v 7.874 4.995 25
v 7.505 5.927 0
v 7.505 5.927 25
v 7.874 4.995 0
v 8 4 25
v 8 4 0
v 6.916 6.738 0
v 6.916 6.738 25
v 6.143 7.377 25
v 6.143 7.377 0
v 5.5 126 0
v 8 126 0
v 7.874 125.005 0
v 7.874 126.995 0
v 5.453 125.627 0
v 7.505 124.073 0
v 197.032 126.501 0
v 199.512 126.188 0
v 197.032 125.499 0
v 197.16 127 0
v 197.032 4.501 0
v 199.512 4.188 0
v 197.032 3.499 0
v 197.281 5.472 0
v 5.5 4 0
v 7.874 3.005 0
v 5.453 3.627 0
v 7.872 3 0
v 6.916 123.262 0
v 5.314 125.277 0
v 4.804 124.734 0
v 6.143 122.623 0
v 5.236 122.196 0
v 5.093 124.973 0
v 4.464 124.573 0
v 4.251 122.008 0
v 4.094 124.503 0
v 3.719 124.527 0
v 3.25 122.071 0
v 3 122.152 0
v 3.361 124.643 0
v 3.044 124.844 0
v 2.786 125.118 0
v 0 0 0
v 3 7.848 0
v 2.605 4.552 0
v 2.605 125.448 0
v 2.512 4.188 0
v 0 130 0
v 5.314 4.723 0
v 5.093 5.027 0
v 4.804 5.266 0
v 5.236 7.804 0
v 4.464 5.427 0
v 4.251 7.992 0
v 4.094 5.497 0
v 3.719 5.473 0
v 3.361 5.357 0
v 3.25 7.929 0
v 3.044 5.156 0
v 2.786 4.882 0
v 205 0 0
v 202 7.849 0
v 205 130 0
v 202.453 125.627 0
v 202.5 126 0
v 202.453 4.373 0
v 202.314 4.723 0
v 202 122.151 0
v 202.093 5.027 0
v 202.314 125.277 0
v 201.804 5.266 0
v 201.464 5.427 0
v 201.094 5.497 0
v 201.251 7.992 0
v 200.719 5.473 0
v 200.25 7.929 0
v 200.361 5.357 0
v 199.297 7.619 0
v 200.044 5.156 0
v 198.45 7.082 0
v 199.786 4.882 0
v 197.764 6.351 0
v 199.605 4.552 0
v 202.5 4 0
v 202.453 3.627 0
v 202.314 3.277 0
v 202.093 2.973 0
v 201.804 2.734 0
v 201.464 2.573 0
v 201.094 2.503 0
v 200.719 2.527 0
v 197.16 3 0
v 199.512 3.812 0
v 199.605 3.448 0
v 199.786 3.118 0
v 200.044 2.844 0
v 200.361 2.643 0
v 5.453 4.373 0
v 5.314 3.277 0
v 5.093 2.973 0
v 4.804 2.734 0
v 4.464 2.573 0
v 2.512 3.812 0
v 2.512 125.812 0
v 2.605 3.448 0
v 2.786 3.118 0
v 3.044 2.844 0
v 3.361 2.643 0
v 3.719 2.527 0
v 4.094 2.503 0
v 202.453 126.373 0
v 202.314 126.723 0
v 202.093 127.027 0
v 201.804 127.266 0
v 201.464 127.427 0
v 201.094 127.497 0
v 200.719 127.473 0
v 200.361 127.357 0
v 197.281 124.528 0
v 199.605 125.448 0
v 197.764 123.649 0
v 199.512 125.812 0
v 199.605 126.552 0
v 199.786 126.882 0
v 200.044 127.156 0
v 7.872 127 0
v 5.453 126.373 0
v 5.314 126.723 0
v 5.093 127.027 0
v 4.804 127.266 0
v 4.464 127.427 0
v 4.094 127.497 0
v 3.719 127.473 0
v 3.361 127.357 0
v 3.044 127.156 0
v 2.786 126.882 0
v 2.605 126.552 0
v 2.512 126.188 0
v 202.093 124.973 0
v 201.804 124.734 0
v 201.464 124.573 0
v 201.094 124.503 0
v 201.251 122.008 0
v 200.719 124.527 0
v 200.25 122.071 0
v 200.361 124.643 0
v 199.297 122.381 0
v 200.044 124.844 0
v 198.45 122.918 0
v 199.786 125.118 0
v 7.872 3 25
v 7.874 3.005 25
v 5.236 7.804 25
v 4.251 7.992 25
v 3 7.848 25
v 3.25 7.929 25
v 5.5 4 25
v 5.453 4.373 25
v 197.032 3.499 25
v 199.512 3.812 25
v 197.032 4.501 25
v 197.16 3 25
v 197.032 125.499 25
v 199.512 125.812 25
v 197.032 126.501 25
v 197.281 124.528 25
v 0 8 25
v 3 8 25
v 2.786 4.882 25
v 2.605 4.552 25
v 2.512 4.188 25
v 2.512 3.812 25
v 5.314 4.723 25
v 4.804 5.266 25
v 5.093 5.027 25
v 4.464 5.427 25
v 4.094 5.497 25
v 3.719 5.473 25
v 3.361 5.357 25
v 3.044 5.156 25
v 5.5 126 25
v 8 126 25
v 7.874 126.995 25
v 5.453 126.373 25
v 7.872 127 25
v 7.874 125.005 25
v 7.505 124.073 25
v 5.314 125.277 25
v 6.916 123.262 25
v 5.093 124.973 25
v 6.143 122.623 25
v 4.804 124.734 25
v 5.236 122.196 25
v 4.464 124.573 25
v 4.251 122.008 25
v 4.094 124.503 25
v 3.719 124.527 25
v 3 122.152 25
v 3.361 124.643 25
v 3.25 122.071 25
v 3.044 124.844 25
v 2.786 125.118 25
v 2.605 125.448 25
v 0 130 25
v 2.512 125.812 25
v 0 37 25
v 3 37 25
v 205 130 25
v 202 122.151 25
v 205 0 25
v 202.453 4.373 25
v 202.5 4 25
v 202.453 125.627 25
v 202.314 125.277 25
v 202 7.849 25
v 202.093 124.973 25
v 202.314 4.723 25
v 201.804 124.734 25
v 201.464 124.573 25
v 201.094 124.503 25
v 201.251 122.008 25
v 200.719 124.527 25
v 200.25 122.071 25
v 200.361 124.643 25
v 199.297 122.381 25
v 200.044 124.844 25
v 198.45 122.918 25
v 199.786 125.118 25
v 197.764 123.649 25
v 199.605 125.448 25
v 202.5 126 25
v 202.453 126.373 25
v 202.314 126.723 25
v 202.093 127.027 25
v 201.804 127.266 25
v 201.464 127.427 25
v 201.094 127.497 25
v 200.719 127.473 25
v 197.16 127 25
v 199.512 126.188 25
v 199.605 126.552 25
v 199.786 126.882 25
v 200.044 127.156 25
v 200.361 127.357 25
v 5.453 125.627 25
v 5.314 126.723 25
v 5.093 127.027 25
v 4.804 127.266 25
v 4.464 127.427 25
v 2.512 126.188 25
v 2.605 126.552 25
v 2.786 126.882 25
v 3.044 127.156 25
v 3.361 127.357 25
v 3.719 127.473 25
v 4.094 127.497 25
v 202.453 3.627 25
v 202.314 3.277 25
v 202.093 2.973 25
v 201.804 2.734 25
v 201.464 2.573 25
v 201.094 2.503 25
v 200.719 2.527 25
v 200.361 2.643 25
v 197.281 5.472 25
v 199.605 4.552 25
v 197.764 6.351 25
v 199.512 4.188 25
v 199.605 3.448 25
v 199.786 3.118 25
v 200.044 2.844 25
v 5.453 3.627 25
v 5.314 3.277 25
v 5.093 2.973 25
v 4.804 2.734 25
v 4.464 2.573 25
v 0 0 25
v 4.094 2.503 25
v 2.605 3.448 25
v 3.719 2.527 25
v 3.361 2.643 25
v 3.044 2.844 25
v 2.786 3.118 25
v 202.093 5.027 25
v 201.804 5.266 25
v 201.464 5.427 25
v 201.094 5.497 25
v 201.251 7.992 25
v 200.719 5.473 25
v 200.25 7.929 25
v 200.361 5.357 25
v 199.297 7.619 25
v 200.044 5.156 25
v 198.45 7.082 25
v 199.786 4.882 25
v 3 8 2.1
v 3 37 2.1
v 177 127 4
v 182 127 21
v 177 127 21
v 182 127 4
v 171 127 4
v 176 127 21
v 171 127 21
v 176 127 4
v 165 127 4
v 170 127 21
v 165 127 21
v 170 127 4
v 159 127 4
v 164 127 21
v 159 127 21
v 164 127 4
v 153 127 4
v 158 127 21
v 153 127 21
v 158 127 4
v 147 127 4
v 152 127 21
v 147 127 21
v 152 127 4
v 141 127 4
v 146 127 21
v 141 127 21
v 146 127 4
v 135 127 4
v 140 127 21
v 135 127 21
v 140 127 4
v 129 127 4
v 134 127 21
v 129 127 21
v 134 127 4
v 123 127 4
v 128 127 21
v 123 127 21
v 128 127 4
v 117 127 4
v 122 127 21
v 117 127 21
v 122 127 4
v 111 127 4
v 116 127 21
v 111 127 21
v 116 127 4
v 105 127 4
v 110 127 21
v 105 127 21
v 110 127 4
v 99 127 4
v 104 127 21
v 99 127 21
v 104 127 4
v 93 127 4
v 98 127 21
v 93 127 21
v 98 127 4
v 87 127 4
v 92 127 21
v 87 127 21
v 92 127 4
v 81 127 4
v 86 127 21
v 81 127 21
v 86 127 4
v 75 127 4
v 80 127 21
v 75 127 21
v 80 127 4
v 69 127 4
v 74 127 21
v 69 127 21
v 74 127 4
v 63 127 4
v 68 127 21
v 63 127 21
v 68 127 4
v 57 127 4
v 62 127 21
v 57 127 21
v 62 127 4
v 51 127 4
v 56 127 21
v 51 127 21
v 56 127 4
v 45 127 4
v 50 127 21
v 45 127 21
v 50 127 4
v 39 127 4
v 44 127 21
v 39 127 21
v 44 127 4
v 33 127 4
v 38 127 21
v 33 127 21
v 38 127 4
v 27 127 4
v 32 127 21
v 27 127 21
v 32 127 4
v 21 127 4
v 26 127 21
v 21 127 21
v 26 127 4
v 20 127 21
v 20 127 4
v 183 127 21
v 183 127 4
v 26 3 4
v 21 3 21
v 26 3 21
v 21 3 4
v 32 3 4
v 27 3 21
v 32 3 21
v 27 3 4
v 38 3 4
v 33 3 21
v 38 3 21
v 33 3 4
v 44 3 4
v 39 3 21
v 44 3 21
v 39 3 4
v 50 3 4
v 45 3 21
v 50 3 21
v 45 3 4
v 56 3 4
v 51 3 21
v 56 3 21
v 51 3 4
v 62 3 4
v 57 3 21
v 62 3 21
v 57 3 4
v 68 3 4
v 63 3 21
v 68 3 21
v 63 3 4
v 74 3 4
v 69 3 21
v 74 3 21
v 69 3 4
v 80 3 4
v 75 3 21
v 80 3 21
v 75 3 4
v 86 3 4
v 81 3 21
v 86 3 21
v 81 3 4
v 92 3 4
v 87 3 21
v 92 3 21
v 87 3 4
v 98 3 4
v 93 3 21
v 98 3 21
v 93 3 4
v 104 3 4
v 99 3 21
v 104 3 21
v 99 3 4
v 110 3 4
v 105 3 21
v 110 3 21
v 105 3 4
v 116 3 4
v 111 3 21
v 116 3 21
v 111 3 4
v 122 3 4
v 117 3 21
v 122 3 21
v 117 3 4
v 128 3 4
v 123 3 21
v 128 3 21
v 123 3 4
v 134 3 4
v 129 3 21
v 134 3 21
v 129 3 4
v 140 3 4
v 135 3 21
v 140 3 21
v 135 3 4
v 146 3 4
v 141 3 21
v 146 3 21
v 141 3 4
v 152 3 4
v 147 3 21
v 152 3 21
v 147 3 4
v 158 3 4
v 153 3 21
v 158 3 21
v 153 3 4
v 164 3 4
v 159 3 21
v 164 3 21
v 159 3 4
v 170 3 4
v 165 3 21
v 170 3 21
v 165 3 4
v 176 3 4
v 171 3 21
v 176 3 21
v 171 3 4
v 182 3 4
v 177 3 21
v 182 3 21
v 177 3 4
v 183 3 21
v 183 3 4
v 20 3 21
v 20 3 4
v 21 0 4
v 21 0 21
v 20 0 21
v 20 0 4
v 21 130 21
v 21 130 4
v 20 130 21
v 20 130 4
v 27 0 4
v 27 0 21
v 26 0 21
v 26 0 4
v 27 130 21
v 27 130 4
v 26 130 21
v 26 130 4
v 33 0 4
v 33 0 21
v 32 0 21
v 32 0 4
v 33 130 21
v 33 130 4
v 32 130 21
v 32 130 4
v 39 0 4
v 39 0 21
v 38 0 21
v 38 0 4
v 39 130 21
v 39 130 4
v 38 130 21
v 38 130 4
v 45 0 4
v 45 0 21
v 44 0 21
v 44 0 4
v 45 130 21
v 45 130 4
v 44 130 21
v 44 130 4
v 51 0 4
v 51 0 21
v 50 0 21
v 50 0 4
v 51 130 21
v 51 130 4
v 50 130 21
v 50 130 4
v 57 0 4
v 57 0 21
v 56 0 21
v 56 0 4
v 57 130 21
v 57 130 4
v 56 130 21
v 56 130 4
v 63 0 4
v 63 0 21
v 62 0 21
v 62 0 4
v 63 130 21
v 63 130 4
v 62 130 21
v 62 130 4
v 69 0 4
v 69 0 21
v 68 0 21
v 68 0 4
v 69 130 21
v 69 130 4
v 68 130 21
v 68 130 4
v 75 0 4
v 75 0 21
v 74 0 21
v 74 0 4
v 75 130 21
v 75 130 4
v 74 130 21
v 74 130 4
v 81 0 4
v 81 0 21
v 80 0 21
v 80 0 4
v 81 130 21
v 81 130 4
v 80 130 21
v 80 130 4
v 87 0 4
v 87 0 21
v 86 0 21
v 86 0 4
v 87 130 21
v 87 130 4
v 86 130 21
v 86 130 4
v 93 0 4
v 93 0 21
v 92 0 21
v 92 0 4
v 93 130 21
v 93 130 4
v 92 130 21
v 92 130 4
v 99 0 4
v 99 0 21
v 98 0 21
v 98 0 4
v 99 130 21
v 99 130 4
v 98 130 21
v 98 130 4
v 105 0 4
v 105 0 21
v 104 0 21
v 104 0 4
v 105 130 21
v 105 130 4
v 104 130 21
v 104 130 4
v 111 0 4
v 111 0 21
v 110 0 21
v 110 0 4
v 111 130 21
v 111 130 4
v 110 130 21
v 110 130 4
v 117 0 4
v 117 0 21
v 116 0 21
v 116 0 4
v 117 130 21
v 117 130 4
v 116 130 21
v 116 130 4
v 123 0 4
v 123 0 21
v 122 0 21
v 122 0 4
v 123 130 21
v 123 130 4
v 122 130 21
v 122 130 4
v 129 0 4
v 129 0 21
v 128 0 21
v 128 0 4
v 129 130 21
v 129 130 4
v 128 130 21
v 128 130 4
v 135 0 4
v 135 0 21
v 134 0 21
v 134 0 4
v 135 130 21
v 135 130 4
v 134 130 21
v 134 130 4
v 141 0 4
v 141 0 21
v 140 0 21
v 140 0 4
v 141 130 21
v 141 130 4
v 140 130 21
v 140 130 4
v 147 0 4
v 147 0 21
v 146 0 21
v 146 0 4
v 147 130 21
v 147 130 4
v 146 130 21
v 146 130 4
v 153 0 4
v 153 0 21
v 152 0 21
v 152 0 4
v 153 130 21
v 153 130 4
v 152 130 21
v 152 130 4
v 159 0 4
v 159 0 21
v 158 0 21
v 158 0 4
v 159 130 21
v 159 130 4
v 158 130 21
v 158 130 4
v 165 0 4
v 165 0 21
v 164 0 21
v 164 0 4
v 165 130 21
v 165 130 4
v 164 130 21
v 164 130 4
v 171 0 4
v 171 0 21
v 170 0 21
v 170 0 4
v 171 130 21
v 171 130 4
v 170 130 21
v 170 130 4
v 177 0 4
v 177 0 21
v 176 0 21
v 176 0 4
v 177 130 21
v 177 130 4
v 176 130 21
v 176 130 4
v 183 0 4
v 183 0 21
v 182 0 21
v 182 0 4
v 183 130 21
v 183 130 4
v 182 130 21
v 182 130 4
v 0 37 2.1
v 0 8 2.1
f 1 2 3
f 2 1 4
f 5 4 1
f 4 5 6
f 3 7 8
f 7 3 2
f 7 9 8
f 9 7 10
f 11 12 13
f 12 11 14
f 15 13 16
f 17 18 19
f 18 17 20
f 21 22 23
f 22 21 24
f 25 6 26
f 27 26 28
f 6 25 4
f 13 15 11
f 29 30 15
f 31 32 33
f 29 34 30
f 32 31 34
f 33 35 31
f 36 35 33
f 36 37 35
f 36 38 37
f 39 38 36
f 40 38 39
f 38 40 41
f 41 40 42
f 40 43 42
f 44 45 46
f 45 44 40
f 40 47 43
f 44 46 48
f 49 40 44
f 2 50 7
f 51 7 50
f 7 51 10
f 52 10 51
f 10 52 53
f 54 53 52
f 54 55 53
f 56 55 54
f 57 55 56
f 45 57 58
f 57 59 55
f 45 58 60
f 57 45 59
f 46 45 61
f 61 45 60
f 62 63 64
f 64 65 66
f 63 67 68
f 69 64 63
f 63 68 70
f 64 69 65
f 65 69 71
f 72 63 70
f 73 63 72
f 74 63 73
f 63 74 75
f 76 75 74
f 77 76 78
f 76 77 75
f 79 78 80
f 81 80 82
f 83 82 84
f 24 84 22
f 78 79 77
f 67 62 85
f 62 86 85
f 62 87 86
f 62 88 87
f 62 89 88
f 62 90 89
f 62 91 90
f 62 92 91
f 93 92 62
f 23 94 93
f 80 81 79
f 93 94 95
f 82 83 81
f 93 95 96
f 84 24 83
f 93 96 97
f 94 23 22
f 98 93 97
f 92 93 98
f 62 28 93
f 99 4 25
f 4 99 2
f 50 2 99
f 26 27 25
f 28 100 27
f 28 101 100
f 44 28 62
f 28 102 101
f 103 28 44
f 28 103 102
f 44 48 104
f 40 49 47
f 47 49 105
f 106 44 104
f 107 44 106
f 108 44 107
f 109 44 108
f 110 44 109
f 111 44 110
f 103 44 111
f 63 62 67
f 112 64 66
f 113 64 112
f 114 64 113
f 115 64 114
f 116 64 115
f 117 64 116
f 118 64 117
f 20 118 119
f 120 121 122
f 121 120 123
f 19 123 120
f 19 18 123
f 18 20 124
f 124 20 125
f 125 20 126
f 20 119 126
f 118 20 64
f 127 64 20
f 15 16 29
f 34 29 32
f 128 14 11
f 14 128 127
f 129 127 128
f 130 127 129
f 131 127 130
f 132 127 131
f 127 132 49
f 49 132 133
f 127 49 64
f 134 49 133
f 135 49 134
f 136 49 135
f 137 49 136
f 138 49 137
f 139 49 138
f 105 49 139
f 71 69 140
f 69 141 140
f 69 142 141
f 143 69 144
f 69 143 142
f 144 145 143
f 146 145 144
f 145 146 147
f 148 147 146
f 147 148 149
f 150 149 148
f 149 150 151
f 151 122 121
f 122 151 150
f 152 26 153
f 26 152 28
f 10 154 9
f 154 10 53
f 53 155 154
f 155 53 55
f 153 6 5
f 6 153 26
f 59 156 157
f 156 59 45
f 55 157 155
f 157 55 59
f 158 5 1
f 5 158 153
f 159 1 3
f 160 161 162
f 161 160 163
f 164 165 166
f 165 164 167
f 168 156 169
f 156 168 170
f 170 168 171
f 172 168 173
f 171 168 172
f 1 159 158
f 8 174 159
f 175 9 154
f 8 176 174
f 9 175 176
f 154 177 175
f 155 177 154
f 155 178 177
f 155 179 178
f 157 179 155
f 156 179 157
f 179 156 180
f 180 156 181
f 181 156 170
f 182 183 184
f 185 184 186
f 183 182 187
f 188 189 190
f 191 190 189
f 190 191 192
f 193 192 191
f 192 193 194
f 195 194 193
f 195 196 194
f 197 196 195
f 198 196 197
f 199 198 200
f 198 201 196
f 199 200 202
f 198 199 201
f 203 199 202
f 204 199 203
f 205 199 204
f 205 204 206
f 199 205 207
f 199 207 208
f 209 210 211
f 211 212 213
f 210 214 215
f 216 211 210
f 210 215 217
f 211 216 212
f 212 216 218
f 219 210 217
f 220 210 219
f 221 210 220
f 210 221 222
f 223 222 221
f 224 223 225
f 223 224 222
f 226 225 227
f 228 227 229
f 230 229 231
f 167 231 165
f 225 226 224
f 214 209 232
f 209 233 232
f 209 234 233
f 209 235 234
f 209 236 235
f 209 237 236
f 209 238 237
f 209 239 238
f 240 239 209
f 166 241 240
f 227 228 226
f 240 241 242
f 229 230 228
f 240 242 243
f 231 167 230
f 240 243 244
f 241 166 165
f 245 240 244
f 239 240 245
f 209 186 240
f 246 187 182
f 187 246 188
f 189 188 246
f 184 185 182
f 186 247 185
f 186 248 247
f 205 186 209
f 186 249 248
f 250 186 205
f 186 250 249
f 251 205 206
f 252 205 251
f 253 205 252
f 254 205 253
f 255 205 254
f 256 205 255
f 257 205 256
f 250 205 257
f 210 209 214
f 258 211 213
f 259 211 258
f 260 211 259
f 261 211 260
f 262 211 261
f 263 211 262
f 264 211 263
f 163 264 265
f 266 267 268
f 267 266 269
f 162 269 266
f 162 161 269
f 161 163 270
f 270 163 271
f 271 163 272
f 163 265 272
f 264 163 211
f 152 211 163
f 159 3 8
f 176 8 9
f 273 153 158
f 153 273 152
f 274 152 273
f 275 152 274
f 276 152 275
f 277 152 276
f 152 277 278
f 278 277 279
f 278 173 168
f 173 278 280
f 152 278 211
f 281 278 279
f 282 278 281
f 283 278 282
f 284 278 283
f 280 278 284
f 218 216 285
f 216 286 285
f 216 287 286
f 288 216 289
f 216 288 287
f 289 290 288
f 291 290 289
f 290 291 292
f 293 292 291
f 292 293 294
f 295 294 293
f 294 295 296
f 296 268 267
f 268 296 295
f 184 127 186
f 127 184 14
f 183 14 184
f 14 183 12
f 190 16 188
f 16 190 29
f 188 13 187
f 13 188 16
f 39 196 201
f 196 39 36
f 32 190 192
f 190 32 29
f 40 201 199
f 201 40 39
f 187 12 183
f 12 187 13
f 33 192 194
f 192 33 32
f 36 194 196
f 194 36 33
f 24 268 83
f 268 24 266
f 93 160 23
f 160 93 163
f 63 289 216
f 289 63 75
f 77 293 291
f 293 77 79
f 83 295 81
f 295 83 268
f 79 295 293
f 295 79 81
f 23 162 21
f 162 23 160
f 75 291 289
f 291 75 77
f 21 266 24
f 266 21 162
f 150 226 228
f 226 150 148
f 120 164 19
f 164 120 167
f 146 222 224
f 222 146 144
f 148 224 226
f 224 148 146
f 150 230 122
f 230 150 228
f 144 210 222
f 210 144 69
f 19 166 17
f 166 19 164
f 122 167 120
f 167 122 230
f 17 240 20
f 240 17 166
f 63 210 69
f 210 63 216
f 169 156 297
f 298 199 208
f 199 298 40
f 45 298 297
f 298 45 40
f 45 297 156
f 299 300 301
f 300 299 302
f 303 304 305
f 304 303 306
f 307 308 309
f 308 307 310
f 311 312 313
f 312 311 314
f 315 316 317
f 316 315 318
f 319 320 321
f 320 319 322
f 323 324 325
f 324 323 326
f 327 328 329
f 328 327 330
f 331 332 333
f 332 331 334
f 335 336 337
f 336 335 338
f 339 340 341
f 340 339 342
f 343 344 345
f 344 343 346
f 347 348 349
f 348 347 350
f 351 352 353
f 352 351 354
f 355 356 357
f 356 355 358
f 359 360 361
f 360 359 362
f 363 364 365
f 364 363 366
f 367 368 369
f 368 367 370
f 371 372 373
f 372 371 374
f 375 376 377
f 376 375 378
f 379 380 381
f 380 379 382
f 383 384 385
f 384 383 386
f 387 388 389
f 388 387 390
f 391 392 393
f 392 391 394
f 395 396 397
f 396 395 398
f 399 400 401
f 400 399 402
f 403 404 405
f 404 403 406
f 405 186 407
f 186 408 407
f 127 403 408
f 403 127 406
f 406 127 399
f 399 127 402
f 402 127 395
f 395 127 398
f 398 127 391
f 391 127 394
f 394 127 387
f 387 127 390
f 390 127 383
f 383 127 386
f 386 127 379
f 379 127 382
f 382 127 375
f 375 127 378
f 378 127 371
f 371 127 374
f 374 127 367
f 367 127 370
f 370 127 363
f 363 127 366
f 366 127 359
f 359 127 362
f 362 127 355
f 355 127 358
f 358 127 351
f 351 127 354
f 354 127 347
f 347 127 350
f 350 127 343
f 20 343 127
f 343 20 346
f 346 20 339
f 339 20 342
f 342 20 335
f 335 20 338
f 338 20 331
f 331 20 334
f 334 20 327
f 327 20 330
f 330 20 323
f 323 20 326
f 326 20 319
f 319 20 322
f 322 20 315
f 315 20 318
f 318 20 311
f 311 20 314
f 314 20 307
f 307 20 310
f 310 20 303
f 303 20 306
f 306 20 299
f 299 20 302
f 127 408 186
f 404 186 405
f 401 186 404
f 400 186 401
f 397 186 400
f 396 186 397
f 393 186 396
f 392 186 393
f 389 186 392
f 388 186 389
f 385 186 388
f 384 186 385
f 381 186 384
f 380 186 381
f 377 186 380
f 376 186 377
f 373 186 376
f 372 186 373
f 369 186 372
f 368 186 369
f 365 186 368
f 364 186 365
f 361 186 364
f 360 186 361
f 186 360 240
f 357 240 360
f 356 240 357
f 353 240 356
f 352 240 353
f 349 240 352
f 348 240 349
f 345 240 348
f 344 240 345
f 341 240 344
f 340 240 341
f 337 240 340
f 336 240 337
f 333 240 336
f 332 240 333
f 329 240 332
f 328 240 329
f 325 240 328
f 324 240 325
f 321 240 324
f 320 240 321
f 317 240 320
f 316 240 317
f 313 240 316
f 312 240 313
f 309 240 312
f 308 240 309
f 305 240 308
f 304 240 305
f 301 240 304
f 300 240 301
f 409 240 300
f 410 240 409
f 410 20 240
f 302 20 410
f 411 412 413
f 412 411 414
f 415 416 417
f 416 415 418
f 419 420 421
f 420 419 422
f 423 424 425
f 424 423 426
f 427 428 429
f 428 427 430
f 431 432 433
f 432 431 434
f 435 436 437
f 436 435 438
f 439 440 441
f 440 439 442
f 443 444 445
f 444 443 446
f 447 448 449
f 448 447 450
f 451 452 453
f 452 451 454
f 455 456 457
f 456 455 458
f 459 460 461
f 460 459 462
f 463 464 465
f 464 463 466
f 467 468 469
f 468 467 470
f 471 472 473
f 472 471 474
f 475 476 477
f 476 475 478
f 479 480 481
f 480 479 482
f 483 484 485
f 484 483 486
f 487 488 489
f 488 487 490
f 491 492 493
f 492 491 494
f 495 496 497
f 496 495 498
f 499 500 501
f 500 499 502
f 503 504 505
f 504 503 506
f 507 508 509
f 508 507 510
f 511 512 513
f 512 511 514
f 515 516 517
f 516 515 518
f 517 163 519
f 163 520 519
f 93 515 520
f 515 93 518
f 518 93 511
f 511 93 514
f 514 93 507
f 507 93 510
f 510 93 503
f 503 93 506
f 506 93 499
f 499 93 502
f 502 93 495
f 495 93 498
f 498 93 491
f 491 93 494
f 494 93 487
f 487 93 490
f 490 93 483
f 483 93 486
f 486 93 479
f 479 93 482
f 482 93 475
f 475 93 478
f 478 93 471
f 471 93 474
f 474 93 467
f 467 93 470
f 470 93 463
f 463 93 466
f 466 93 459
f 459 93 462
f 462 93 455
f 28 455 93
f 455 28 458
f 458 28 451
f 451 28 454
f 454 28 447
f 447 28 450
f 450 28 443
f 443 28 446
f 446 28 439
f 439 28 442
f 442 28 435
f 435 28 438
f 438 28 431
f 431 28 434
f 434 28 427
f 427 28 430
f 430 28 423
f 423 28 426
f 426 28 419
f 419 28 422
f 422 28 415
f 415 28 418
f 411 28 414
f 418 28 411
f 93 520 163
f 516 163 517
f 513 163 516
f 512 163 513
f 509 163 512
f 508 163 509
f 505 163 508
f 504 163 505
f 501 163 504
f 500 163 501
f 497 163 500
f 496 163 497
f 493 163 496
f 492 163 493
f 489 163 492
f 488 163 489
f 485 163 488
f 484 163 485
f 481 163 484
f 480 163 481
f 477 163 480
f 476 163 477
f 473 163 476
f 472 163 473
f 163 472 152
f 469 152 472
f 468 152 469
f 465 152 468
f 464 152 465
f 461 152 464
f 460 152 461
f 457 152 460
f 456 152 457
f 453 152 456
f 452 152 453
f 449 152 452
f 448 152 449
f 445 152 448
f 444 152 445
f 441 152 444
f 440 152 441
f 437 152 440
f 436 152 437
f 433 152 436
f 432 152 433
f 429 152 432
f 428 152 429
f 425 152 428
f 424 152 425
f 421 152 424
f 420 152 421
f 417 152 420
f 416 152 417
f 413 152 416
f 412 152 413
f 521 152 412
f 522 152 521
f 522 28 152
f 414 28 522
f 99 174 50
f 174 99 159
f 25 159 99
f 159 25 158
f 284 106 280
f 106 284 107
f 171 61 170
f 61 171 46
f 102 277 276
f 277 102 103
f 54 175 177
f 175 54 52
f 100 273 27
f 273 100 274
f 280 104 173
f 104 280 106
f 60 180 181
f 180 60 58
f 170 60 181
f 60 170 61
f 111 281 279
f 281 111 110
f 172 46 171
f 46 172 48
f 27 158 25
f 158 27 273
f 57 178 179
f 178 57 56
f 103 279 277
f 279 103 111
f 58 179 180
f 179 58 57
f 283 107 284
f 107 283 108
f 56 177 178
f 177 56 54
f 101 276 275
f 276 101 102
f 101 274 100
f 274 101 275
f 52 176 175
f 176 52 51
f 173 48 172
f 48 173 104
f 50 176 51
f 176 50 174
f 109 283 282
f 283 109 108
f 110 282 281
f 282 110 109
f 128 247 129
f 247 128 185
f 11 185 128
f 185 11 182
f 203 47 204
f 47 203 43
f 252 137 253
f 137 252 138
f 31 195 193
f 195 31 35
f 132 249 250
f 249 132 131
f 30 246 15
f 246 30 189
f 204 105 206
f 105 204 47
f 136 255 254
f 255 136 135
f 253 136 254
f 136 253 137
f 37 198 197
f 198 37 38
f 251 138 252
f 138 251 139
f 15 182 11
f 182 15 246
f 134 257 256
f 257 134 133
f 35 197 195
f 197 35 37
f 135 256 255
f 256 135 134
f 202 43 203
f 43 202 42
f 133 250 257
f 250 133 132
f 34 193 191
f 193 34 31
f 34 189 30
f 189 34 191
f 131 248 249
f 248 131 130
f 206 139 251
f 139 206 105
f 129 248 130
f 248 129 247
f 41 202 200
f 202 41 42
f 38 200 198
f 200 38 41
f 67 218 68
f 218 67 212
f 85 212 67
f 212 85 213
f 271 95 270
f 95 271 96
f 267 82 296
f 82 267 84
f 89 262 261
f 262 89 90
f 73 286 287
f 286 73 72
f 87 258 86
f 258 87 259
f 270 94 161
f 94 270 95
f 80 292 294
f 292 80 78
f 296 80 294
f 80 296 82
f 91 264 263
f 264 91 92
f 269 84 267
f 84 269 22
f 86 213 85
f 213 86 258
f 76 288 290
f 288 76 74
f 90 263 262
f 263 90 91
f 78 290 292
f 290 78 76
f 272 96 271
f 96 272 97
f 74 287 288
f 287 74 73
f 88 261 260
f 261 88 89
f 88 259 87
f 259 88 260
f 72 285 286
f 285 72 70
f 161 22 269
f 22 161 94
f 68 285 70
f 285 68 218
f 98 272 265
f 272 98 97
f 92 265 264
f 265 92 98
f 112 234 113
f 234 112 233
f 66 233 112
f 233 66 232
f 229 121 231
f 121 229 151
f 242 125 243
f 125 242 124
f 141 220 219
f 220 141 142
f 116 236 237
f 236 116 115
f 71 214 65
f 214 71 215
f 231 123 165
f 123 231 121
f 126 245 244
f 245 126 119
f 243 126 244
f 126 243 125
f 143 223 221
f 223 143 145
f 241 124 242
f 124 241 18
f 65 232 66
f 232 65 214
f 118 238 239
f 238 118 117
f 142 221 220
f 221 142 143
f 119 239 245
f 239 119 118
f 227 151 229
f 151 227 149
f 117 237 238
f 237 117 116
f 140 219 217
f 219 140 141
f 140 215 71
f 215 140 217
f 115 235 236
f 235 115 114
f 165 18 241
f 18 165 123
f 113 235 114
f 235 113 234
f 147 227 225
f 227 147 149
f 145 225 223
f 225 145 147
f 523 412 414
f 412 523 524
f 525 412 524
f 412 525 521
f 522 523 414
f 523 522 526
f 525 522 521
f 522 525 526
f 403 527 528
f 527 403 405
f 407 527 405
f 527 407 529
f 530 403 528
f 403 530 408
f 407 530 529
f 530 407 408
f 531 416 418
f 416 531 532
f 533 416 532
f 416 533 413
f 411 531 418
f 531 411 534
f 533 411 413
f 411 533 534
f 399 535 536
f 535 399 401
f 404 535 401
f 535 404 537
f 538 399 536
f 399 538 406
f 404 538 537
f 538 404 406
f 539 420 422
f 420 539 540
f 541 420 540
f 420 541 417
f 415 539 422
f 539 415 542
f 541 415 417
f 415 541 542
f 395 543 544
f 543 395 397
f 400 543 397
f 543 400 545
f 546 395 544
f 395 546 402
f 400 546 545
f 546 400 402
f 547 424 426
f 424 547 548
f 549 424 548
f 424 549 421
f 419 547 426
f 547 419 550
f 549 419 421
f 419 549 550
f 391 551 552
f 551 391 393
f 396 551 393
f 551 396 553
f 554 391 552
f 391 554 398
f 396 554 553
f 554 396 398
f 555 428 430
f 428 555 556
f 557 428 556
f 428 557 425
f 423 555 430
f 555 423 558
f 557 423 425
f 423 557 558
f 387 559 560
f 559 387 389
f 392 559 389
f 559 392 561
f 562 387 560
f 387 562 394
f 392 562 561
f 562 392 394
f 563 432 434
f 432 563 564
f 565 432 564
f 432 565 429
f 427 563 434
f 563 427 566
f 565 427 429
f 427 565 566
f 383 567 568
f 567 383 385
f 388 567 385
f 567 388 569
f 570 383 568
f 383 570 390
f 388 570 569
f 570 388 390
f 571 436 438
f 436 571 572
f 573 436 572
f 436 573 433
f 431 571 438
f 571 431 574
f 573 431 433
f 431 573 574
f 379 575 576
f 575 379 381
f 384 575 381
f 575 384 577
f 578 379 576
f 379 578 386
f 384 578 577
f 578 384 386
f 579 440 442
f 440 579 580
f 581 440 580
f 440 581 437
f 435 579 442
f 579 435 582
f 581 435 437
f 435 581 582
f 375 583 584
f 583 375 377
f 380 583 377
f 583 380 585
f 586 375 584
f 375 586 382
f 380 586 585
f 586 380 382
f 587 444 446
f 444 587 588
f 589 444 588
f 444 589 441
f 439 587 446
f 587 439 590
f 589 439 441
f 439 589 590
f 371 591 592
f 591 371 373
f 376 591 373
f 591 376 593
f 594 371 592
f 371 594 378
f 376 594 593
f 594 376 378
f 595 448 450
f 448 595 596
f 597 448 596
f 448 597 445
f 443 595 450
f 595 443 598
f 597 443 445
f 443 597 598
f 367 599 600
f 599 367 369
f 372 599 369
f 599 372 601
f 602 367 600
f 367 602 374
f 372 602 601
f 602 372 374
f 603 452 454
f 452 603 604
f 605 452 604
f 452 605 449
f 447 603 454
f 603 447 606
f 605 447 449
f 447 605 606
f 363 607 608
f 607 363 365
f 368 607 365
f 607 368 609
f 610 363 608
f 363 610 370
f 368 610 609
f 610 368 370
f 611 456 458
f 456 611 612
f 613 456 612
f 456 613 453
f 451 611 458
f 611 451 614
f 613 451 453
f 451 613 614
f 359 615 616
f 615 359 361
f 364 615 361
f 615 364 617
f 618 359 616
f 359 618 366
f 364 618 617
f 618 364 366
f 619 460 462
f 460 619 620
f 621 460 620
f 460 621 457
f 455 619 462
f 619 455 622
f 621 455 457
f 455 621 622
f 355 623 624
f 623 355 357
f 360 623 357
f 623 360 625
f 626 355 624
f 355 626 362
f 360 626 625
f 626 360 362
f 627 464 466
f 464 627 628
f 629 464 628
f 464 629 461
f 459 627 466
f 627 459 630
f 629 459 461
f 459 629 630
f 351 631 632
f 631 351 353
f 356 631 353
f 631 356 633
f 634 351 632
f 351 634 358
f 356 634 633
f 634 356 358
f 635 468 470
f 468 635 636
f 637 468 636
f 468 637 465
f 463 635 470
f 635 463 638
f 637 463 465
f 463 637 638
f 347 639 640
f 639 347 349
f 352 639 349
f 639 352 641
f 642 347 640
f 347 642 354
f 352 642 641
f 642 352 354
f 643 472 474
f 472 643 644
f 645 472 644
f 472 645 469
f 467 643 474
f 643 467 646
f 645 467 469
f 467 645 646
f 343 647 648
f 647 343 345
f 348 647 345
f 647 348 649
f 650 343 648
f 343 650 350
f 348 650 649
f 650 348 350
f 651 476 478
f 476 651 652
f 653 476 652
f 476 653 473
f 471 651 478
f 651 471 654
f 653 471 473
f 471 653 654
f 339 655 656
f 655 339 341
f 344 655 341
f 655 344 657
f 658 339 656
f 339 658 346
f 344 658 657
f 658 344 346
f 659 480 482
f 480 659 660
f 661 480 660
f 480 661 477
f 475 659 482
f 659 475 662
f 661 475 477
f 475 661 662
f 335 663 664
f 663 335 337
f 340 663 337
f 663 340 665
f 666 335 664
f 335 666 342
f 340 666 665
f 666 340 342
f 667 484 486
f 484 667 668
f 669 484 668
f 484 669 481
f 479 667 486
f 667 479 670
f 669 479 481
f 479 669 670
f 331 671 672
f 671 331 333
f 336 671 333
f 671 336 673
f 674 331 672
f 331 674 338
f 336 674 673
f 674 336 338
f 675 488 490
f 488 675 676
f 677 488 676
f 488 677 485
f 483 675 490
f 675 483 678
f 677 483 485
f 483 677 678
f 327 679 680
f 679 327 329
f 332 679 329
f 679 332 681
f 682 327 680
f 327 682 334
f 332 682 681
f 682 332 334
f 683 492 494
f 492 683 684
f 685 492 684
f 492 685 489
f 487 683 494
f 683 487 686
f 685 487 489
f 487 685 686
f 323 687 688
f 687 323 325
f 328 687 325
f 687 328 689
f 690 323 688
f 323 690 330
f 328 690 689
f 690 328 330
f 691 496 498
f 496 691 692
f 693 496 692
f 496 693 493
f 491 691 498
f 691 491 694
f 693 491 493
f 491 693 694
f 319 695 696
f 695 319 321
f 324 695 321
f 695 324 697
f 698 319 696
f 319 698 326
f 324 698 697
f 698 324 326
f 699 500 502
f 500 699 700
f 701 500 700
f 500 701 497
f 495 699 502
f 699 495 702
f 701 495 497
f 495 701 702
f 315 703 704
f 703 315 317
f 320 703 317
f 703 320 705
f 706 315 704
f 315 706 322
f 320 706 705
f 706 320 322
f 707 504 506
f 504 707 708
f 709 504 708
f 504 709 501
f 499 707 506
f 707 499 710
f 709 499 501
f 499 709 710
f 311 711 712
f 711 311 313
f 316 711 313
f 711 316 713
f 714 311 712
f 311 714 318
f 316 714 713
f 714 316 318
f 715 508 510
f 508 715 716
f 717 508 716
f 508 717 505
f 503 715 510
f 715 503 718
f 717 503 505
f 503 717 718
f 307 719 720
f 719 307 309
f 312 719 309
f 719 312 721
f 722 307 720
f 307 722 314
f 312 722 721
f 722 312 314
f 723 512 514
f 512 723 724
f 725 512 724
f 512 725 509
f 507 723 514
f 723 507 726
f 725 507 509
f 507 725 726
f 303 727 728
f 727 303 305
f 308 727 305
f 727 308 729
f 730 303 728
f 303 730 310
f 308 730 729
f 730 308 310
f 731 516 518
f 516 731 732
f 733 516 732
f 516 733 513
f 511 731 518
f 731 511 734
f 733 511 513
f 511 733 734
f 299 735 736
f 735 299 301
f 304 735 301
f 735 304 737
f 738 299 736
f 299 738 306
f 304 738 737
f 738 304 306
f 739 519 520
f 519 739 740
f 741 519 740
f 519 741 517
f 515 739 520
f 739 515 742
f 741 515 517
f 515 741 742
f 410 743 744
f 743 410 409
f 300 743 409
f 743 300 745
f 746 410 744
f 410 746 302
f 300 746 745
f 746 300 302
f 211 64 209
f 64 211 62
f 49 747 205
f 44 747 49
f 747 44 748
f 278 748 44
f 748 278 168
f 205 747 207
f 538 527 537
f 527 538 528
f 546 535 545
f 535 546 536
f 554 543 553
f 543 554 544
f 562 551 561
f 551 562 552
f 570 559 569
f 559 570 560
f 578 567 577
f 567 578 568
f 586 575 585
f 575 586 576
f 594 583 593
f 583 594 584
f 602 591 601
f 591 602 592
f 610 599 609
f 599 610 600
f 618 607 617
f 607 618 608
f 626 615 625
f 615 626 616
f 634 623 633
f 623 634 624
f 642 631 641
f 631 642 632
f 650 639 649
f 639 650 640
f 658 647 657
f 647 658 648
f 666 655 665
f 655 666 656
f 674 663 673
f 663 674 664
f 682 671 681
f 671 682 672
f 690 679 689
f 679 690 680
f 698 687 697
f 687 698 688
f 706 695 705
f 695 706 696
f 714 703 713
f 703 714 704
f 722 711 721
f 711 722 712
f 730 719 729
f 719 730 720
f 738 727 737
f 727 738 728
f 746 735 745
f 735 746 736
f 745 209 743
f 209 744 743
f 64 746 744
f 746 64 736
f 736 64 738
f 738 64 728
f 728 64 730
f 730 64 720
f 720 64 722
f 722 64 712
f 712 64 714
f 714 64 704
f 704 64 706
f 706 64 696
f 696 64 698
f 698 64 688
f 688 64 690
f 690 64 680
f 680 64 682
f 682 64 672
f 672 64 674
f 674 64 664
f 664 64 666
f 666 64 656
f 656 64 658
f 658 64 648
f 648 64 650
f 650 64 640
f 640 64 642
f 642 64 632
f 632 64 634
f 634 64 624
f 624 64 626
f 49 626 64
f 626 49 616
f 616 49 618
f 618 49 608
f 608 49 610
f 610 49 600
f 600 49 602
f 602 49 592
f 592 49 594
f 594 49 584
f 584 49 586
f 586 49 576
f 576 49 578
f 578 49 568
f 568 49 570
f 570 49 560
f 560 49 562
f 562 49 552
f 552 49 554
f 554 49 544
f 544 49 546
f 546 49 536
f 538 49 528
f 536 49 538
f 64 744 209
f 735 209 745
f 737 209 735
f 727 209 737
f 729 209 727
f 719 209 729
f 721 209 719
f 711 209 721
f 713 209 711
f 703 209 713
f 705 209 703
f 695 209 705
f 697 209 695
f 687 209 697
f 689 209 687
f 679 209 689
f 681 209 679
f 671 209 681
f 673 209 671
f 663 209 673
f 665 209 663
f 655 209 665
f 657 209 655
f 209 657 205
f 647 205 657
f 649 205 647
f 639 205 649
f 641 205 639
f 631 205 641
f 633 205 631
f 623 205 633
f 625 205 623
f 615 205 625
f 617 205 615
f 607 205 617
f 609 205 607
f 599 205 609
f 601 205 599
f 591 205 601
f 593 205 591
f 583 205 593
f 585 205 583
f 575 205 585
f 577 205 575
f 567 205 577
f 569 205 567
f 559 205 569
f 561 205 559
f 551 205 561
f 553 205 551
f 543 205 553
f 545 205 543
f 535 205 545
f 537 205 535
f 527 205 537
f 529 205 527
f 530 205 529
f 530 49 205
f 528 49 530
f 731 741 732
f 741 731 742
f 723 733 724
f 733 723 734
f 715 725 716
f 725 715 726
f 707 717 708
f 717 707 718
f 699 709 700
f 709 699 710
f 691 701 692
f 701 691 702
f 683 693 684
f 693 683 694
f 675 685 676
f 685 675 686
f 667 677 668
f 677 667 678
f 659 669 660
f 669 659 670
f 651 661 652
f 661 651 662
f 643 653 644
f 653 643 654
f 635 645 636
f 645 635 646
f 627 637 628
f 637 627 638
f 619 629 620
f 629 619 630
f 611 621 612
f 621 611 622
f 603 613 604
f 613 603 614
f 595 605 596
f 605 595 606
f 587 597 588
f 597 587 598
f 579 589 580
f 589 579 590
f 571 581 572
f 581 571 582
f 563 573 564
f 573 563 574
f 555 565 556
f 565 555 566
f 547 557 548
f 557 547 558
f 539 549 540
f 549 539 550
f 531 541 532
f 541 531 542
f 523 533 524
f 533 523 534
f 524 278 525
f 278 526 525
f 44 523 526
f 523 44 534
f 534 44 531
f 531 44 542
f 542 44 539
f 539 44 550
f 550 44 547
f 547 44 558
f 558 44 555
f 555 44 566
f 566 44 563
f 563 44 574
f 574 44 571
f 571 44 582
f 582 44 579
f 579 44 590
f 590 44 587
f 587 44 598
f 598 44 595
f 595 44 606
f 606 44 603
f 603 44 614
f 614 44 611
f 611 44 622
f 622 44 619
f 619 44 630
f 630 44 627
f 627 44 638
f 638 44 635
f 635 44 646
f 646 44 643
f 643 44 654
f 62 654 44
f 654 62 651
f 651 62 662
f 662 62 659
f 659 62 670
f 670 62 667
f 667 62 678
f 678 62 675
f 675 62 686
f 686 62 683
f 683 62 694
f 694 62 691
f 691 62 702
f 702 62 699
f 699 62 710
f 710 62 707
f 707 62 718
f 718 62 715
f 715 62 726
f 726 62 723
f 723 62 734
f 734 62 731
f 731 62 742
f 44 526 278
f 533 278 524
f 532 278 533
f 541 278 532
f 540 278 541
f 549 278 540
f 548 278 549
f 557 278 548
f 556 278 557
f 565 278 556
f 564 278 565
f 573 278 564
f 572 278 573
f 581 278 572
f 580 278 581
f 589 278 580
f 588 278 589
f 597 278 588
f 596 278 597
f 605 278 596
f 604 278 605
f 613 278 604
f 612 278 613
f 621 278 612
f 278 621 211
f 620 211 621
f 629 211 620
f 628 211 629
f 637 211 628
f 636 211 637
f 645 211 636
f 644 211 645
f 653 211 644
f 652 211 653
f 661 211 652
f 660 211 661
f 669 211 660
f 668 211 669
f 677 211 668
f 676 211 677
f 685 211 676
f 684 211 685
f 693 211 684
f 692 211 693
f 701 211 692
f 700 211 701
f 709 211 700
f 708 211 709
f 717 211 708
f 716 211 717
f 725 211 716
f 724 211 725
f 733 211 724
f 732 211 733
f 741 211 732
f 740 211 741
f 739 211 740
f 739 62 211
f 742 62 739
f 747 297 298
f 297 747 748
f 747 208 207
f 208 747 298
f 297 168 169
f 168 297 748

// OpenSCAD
display_x = 165;
display_y = 100;
display_z = 25;

border_x = 20;
border_y = 15;

side = 3;

case_x = display_x + 2 * border_x;
case_y = display_y + 2 * border_y;

// Board: https://waveshare.com/w/upload/7/73/CM4-IO-BASE-A-details-size.jpg
// These are only the holes:
board_x = 85 - 3.5 - 23.5;
board_y = 56 - 2 * 3.5;

// PoE LAN module
// Will be replaced by keystone modules later
lan_y = 29;
lan_z = 23;

difference() {
    cube([display_x + 2 * border_x, display_y + 2 * border_y, display_z]);

    // cutout
    difference() {
        translate([side, side, -1])
            cube([display_x + 2 * border_x - 2 * side, display_y + 2 * border_y - 2 * side, display_z + 2]);
        // back plate screw holes
        for (x = [4, case_x - 4], y = [4, case_y - 4]) {
            translate([x, y, 0])
                cylinder(display_z, d=8, $fn=25);
        }
    }

    // PoE LAN module
    translate([-1, 8, display_z - lan_z + 0.1])
        cube([50, lan_y, lan_z]);

    // back plate screw holes
    for (x = [4, case_x - 4], y = [4, case_y - 4]) {
        color("red")
        translate([x, y, -0.1])
            cylinder(display_z + 2, d=3, $fn=25);
    }

    // vents
    for (x = [20:6:case_x-20]) {
        translate([x, -1, 4])
            cube([1, 10, display_z - 8]);
        translate([x, case_y-5, 4])
            cube([1, 10, display_z - 8]);
    }
}
